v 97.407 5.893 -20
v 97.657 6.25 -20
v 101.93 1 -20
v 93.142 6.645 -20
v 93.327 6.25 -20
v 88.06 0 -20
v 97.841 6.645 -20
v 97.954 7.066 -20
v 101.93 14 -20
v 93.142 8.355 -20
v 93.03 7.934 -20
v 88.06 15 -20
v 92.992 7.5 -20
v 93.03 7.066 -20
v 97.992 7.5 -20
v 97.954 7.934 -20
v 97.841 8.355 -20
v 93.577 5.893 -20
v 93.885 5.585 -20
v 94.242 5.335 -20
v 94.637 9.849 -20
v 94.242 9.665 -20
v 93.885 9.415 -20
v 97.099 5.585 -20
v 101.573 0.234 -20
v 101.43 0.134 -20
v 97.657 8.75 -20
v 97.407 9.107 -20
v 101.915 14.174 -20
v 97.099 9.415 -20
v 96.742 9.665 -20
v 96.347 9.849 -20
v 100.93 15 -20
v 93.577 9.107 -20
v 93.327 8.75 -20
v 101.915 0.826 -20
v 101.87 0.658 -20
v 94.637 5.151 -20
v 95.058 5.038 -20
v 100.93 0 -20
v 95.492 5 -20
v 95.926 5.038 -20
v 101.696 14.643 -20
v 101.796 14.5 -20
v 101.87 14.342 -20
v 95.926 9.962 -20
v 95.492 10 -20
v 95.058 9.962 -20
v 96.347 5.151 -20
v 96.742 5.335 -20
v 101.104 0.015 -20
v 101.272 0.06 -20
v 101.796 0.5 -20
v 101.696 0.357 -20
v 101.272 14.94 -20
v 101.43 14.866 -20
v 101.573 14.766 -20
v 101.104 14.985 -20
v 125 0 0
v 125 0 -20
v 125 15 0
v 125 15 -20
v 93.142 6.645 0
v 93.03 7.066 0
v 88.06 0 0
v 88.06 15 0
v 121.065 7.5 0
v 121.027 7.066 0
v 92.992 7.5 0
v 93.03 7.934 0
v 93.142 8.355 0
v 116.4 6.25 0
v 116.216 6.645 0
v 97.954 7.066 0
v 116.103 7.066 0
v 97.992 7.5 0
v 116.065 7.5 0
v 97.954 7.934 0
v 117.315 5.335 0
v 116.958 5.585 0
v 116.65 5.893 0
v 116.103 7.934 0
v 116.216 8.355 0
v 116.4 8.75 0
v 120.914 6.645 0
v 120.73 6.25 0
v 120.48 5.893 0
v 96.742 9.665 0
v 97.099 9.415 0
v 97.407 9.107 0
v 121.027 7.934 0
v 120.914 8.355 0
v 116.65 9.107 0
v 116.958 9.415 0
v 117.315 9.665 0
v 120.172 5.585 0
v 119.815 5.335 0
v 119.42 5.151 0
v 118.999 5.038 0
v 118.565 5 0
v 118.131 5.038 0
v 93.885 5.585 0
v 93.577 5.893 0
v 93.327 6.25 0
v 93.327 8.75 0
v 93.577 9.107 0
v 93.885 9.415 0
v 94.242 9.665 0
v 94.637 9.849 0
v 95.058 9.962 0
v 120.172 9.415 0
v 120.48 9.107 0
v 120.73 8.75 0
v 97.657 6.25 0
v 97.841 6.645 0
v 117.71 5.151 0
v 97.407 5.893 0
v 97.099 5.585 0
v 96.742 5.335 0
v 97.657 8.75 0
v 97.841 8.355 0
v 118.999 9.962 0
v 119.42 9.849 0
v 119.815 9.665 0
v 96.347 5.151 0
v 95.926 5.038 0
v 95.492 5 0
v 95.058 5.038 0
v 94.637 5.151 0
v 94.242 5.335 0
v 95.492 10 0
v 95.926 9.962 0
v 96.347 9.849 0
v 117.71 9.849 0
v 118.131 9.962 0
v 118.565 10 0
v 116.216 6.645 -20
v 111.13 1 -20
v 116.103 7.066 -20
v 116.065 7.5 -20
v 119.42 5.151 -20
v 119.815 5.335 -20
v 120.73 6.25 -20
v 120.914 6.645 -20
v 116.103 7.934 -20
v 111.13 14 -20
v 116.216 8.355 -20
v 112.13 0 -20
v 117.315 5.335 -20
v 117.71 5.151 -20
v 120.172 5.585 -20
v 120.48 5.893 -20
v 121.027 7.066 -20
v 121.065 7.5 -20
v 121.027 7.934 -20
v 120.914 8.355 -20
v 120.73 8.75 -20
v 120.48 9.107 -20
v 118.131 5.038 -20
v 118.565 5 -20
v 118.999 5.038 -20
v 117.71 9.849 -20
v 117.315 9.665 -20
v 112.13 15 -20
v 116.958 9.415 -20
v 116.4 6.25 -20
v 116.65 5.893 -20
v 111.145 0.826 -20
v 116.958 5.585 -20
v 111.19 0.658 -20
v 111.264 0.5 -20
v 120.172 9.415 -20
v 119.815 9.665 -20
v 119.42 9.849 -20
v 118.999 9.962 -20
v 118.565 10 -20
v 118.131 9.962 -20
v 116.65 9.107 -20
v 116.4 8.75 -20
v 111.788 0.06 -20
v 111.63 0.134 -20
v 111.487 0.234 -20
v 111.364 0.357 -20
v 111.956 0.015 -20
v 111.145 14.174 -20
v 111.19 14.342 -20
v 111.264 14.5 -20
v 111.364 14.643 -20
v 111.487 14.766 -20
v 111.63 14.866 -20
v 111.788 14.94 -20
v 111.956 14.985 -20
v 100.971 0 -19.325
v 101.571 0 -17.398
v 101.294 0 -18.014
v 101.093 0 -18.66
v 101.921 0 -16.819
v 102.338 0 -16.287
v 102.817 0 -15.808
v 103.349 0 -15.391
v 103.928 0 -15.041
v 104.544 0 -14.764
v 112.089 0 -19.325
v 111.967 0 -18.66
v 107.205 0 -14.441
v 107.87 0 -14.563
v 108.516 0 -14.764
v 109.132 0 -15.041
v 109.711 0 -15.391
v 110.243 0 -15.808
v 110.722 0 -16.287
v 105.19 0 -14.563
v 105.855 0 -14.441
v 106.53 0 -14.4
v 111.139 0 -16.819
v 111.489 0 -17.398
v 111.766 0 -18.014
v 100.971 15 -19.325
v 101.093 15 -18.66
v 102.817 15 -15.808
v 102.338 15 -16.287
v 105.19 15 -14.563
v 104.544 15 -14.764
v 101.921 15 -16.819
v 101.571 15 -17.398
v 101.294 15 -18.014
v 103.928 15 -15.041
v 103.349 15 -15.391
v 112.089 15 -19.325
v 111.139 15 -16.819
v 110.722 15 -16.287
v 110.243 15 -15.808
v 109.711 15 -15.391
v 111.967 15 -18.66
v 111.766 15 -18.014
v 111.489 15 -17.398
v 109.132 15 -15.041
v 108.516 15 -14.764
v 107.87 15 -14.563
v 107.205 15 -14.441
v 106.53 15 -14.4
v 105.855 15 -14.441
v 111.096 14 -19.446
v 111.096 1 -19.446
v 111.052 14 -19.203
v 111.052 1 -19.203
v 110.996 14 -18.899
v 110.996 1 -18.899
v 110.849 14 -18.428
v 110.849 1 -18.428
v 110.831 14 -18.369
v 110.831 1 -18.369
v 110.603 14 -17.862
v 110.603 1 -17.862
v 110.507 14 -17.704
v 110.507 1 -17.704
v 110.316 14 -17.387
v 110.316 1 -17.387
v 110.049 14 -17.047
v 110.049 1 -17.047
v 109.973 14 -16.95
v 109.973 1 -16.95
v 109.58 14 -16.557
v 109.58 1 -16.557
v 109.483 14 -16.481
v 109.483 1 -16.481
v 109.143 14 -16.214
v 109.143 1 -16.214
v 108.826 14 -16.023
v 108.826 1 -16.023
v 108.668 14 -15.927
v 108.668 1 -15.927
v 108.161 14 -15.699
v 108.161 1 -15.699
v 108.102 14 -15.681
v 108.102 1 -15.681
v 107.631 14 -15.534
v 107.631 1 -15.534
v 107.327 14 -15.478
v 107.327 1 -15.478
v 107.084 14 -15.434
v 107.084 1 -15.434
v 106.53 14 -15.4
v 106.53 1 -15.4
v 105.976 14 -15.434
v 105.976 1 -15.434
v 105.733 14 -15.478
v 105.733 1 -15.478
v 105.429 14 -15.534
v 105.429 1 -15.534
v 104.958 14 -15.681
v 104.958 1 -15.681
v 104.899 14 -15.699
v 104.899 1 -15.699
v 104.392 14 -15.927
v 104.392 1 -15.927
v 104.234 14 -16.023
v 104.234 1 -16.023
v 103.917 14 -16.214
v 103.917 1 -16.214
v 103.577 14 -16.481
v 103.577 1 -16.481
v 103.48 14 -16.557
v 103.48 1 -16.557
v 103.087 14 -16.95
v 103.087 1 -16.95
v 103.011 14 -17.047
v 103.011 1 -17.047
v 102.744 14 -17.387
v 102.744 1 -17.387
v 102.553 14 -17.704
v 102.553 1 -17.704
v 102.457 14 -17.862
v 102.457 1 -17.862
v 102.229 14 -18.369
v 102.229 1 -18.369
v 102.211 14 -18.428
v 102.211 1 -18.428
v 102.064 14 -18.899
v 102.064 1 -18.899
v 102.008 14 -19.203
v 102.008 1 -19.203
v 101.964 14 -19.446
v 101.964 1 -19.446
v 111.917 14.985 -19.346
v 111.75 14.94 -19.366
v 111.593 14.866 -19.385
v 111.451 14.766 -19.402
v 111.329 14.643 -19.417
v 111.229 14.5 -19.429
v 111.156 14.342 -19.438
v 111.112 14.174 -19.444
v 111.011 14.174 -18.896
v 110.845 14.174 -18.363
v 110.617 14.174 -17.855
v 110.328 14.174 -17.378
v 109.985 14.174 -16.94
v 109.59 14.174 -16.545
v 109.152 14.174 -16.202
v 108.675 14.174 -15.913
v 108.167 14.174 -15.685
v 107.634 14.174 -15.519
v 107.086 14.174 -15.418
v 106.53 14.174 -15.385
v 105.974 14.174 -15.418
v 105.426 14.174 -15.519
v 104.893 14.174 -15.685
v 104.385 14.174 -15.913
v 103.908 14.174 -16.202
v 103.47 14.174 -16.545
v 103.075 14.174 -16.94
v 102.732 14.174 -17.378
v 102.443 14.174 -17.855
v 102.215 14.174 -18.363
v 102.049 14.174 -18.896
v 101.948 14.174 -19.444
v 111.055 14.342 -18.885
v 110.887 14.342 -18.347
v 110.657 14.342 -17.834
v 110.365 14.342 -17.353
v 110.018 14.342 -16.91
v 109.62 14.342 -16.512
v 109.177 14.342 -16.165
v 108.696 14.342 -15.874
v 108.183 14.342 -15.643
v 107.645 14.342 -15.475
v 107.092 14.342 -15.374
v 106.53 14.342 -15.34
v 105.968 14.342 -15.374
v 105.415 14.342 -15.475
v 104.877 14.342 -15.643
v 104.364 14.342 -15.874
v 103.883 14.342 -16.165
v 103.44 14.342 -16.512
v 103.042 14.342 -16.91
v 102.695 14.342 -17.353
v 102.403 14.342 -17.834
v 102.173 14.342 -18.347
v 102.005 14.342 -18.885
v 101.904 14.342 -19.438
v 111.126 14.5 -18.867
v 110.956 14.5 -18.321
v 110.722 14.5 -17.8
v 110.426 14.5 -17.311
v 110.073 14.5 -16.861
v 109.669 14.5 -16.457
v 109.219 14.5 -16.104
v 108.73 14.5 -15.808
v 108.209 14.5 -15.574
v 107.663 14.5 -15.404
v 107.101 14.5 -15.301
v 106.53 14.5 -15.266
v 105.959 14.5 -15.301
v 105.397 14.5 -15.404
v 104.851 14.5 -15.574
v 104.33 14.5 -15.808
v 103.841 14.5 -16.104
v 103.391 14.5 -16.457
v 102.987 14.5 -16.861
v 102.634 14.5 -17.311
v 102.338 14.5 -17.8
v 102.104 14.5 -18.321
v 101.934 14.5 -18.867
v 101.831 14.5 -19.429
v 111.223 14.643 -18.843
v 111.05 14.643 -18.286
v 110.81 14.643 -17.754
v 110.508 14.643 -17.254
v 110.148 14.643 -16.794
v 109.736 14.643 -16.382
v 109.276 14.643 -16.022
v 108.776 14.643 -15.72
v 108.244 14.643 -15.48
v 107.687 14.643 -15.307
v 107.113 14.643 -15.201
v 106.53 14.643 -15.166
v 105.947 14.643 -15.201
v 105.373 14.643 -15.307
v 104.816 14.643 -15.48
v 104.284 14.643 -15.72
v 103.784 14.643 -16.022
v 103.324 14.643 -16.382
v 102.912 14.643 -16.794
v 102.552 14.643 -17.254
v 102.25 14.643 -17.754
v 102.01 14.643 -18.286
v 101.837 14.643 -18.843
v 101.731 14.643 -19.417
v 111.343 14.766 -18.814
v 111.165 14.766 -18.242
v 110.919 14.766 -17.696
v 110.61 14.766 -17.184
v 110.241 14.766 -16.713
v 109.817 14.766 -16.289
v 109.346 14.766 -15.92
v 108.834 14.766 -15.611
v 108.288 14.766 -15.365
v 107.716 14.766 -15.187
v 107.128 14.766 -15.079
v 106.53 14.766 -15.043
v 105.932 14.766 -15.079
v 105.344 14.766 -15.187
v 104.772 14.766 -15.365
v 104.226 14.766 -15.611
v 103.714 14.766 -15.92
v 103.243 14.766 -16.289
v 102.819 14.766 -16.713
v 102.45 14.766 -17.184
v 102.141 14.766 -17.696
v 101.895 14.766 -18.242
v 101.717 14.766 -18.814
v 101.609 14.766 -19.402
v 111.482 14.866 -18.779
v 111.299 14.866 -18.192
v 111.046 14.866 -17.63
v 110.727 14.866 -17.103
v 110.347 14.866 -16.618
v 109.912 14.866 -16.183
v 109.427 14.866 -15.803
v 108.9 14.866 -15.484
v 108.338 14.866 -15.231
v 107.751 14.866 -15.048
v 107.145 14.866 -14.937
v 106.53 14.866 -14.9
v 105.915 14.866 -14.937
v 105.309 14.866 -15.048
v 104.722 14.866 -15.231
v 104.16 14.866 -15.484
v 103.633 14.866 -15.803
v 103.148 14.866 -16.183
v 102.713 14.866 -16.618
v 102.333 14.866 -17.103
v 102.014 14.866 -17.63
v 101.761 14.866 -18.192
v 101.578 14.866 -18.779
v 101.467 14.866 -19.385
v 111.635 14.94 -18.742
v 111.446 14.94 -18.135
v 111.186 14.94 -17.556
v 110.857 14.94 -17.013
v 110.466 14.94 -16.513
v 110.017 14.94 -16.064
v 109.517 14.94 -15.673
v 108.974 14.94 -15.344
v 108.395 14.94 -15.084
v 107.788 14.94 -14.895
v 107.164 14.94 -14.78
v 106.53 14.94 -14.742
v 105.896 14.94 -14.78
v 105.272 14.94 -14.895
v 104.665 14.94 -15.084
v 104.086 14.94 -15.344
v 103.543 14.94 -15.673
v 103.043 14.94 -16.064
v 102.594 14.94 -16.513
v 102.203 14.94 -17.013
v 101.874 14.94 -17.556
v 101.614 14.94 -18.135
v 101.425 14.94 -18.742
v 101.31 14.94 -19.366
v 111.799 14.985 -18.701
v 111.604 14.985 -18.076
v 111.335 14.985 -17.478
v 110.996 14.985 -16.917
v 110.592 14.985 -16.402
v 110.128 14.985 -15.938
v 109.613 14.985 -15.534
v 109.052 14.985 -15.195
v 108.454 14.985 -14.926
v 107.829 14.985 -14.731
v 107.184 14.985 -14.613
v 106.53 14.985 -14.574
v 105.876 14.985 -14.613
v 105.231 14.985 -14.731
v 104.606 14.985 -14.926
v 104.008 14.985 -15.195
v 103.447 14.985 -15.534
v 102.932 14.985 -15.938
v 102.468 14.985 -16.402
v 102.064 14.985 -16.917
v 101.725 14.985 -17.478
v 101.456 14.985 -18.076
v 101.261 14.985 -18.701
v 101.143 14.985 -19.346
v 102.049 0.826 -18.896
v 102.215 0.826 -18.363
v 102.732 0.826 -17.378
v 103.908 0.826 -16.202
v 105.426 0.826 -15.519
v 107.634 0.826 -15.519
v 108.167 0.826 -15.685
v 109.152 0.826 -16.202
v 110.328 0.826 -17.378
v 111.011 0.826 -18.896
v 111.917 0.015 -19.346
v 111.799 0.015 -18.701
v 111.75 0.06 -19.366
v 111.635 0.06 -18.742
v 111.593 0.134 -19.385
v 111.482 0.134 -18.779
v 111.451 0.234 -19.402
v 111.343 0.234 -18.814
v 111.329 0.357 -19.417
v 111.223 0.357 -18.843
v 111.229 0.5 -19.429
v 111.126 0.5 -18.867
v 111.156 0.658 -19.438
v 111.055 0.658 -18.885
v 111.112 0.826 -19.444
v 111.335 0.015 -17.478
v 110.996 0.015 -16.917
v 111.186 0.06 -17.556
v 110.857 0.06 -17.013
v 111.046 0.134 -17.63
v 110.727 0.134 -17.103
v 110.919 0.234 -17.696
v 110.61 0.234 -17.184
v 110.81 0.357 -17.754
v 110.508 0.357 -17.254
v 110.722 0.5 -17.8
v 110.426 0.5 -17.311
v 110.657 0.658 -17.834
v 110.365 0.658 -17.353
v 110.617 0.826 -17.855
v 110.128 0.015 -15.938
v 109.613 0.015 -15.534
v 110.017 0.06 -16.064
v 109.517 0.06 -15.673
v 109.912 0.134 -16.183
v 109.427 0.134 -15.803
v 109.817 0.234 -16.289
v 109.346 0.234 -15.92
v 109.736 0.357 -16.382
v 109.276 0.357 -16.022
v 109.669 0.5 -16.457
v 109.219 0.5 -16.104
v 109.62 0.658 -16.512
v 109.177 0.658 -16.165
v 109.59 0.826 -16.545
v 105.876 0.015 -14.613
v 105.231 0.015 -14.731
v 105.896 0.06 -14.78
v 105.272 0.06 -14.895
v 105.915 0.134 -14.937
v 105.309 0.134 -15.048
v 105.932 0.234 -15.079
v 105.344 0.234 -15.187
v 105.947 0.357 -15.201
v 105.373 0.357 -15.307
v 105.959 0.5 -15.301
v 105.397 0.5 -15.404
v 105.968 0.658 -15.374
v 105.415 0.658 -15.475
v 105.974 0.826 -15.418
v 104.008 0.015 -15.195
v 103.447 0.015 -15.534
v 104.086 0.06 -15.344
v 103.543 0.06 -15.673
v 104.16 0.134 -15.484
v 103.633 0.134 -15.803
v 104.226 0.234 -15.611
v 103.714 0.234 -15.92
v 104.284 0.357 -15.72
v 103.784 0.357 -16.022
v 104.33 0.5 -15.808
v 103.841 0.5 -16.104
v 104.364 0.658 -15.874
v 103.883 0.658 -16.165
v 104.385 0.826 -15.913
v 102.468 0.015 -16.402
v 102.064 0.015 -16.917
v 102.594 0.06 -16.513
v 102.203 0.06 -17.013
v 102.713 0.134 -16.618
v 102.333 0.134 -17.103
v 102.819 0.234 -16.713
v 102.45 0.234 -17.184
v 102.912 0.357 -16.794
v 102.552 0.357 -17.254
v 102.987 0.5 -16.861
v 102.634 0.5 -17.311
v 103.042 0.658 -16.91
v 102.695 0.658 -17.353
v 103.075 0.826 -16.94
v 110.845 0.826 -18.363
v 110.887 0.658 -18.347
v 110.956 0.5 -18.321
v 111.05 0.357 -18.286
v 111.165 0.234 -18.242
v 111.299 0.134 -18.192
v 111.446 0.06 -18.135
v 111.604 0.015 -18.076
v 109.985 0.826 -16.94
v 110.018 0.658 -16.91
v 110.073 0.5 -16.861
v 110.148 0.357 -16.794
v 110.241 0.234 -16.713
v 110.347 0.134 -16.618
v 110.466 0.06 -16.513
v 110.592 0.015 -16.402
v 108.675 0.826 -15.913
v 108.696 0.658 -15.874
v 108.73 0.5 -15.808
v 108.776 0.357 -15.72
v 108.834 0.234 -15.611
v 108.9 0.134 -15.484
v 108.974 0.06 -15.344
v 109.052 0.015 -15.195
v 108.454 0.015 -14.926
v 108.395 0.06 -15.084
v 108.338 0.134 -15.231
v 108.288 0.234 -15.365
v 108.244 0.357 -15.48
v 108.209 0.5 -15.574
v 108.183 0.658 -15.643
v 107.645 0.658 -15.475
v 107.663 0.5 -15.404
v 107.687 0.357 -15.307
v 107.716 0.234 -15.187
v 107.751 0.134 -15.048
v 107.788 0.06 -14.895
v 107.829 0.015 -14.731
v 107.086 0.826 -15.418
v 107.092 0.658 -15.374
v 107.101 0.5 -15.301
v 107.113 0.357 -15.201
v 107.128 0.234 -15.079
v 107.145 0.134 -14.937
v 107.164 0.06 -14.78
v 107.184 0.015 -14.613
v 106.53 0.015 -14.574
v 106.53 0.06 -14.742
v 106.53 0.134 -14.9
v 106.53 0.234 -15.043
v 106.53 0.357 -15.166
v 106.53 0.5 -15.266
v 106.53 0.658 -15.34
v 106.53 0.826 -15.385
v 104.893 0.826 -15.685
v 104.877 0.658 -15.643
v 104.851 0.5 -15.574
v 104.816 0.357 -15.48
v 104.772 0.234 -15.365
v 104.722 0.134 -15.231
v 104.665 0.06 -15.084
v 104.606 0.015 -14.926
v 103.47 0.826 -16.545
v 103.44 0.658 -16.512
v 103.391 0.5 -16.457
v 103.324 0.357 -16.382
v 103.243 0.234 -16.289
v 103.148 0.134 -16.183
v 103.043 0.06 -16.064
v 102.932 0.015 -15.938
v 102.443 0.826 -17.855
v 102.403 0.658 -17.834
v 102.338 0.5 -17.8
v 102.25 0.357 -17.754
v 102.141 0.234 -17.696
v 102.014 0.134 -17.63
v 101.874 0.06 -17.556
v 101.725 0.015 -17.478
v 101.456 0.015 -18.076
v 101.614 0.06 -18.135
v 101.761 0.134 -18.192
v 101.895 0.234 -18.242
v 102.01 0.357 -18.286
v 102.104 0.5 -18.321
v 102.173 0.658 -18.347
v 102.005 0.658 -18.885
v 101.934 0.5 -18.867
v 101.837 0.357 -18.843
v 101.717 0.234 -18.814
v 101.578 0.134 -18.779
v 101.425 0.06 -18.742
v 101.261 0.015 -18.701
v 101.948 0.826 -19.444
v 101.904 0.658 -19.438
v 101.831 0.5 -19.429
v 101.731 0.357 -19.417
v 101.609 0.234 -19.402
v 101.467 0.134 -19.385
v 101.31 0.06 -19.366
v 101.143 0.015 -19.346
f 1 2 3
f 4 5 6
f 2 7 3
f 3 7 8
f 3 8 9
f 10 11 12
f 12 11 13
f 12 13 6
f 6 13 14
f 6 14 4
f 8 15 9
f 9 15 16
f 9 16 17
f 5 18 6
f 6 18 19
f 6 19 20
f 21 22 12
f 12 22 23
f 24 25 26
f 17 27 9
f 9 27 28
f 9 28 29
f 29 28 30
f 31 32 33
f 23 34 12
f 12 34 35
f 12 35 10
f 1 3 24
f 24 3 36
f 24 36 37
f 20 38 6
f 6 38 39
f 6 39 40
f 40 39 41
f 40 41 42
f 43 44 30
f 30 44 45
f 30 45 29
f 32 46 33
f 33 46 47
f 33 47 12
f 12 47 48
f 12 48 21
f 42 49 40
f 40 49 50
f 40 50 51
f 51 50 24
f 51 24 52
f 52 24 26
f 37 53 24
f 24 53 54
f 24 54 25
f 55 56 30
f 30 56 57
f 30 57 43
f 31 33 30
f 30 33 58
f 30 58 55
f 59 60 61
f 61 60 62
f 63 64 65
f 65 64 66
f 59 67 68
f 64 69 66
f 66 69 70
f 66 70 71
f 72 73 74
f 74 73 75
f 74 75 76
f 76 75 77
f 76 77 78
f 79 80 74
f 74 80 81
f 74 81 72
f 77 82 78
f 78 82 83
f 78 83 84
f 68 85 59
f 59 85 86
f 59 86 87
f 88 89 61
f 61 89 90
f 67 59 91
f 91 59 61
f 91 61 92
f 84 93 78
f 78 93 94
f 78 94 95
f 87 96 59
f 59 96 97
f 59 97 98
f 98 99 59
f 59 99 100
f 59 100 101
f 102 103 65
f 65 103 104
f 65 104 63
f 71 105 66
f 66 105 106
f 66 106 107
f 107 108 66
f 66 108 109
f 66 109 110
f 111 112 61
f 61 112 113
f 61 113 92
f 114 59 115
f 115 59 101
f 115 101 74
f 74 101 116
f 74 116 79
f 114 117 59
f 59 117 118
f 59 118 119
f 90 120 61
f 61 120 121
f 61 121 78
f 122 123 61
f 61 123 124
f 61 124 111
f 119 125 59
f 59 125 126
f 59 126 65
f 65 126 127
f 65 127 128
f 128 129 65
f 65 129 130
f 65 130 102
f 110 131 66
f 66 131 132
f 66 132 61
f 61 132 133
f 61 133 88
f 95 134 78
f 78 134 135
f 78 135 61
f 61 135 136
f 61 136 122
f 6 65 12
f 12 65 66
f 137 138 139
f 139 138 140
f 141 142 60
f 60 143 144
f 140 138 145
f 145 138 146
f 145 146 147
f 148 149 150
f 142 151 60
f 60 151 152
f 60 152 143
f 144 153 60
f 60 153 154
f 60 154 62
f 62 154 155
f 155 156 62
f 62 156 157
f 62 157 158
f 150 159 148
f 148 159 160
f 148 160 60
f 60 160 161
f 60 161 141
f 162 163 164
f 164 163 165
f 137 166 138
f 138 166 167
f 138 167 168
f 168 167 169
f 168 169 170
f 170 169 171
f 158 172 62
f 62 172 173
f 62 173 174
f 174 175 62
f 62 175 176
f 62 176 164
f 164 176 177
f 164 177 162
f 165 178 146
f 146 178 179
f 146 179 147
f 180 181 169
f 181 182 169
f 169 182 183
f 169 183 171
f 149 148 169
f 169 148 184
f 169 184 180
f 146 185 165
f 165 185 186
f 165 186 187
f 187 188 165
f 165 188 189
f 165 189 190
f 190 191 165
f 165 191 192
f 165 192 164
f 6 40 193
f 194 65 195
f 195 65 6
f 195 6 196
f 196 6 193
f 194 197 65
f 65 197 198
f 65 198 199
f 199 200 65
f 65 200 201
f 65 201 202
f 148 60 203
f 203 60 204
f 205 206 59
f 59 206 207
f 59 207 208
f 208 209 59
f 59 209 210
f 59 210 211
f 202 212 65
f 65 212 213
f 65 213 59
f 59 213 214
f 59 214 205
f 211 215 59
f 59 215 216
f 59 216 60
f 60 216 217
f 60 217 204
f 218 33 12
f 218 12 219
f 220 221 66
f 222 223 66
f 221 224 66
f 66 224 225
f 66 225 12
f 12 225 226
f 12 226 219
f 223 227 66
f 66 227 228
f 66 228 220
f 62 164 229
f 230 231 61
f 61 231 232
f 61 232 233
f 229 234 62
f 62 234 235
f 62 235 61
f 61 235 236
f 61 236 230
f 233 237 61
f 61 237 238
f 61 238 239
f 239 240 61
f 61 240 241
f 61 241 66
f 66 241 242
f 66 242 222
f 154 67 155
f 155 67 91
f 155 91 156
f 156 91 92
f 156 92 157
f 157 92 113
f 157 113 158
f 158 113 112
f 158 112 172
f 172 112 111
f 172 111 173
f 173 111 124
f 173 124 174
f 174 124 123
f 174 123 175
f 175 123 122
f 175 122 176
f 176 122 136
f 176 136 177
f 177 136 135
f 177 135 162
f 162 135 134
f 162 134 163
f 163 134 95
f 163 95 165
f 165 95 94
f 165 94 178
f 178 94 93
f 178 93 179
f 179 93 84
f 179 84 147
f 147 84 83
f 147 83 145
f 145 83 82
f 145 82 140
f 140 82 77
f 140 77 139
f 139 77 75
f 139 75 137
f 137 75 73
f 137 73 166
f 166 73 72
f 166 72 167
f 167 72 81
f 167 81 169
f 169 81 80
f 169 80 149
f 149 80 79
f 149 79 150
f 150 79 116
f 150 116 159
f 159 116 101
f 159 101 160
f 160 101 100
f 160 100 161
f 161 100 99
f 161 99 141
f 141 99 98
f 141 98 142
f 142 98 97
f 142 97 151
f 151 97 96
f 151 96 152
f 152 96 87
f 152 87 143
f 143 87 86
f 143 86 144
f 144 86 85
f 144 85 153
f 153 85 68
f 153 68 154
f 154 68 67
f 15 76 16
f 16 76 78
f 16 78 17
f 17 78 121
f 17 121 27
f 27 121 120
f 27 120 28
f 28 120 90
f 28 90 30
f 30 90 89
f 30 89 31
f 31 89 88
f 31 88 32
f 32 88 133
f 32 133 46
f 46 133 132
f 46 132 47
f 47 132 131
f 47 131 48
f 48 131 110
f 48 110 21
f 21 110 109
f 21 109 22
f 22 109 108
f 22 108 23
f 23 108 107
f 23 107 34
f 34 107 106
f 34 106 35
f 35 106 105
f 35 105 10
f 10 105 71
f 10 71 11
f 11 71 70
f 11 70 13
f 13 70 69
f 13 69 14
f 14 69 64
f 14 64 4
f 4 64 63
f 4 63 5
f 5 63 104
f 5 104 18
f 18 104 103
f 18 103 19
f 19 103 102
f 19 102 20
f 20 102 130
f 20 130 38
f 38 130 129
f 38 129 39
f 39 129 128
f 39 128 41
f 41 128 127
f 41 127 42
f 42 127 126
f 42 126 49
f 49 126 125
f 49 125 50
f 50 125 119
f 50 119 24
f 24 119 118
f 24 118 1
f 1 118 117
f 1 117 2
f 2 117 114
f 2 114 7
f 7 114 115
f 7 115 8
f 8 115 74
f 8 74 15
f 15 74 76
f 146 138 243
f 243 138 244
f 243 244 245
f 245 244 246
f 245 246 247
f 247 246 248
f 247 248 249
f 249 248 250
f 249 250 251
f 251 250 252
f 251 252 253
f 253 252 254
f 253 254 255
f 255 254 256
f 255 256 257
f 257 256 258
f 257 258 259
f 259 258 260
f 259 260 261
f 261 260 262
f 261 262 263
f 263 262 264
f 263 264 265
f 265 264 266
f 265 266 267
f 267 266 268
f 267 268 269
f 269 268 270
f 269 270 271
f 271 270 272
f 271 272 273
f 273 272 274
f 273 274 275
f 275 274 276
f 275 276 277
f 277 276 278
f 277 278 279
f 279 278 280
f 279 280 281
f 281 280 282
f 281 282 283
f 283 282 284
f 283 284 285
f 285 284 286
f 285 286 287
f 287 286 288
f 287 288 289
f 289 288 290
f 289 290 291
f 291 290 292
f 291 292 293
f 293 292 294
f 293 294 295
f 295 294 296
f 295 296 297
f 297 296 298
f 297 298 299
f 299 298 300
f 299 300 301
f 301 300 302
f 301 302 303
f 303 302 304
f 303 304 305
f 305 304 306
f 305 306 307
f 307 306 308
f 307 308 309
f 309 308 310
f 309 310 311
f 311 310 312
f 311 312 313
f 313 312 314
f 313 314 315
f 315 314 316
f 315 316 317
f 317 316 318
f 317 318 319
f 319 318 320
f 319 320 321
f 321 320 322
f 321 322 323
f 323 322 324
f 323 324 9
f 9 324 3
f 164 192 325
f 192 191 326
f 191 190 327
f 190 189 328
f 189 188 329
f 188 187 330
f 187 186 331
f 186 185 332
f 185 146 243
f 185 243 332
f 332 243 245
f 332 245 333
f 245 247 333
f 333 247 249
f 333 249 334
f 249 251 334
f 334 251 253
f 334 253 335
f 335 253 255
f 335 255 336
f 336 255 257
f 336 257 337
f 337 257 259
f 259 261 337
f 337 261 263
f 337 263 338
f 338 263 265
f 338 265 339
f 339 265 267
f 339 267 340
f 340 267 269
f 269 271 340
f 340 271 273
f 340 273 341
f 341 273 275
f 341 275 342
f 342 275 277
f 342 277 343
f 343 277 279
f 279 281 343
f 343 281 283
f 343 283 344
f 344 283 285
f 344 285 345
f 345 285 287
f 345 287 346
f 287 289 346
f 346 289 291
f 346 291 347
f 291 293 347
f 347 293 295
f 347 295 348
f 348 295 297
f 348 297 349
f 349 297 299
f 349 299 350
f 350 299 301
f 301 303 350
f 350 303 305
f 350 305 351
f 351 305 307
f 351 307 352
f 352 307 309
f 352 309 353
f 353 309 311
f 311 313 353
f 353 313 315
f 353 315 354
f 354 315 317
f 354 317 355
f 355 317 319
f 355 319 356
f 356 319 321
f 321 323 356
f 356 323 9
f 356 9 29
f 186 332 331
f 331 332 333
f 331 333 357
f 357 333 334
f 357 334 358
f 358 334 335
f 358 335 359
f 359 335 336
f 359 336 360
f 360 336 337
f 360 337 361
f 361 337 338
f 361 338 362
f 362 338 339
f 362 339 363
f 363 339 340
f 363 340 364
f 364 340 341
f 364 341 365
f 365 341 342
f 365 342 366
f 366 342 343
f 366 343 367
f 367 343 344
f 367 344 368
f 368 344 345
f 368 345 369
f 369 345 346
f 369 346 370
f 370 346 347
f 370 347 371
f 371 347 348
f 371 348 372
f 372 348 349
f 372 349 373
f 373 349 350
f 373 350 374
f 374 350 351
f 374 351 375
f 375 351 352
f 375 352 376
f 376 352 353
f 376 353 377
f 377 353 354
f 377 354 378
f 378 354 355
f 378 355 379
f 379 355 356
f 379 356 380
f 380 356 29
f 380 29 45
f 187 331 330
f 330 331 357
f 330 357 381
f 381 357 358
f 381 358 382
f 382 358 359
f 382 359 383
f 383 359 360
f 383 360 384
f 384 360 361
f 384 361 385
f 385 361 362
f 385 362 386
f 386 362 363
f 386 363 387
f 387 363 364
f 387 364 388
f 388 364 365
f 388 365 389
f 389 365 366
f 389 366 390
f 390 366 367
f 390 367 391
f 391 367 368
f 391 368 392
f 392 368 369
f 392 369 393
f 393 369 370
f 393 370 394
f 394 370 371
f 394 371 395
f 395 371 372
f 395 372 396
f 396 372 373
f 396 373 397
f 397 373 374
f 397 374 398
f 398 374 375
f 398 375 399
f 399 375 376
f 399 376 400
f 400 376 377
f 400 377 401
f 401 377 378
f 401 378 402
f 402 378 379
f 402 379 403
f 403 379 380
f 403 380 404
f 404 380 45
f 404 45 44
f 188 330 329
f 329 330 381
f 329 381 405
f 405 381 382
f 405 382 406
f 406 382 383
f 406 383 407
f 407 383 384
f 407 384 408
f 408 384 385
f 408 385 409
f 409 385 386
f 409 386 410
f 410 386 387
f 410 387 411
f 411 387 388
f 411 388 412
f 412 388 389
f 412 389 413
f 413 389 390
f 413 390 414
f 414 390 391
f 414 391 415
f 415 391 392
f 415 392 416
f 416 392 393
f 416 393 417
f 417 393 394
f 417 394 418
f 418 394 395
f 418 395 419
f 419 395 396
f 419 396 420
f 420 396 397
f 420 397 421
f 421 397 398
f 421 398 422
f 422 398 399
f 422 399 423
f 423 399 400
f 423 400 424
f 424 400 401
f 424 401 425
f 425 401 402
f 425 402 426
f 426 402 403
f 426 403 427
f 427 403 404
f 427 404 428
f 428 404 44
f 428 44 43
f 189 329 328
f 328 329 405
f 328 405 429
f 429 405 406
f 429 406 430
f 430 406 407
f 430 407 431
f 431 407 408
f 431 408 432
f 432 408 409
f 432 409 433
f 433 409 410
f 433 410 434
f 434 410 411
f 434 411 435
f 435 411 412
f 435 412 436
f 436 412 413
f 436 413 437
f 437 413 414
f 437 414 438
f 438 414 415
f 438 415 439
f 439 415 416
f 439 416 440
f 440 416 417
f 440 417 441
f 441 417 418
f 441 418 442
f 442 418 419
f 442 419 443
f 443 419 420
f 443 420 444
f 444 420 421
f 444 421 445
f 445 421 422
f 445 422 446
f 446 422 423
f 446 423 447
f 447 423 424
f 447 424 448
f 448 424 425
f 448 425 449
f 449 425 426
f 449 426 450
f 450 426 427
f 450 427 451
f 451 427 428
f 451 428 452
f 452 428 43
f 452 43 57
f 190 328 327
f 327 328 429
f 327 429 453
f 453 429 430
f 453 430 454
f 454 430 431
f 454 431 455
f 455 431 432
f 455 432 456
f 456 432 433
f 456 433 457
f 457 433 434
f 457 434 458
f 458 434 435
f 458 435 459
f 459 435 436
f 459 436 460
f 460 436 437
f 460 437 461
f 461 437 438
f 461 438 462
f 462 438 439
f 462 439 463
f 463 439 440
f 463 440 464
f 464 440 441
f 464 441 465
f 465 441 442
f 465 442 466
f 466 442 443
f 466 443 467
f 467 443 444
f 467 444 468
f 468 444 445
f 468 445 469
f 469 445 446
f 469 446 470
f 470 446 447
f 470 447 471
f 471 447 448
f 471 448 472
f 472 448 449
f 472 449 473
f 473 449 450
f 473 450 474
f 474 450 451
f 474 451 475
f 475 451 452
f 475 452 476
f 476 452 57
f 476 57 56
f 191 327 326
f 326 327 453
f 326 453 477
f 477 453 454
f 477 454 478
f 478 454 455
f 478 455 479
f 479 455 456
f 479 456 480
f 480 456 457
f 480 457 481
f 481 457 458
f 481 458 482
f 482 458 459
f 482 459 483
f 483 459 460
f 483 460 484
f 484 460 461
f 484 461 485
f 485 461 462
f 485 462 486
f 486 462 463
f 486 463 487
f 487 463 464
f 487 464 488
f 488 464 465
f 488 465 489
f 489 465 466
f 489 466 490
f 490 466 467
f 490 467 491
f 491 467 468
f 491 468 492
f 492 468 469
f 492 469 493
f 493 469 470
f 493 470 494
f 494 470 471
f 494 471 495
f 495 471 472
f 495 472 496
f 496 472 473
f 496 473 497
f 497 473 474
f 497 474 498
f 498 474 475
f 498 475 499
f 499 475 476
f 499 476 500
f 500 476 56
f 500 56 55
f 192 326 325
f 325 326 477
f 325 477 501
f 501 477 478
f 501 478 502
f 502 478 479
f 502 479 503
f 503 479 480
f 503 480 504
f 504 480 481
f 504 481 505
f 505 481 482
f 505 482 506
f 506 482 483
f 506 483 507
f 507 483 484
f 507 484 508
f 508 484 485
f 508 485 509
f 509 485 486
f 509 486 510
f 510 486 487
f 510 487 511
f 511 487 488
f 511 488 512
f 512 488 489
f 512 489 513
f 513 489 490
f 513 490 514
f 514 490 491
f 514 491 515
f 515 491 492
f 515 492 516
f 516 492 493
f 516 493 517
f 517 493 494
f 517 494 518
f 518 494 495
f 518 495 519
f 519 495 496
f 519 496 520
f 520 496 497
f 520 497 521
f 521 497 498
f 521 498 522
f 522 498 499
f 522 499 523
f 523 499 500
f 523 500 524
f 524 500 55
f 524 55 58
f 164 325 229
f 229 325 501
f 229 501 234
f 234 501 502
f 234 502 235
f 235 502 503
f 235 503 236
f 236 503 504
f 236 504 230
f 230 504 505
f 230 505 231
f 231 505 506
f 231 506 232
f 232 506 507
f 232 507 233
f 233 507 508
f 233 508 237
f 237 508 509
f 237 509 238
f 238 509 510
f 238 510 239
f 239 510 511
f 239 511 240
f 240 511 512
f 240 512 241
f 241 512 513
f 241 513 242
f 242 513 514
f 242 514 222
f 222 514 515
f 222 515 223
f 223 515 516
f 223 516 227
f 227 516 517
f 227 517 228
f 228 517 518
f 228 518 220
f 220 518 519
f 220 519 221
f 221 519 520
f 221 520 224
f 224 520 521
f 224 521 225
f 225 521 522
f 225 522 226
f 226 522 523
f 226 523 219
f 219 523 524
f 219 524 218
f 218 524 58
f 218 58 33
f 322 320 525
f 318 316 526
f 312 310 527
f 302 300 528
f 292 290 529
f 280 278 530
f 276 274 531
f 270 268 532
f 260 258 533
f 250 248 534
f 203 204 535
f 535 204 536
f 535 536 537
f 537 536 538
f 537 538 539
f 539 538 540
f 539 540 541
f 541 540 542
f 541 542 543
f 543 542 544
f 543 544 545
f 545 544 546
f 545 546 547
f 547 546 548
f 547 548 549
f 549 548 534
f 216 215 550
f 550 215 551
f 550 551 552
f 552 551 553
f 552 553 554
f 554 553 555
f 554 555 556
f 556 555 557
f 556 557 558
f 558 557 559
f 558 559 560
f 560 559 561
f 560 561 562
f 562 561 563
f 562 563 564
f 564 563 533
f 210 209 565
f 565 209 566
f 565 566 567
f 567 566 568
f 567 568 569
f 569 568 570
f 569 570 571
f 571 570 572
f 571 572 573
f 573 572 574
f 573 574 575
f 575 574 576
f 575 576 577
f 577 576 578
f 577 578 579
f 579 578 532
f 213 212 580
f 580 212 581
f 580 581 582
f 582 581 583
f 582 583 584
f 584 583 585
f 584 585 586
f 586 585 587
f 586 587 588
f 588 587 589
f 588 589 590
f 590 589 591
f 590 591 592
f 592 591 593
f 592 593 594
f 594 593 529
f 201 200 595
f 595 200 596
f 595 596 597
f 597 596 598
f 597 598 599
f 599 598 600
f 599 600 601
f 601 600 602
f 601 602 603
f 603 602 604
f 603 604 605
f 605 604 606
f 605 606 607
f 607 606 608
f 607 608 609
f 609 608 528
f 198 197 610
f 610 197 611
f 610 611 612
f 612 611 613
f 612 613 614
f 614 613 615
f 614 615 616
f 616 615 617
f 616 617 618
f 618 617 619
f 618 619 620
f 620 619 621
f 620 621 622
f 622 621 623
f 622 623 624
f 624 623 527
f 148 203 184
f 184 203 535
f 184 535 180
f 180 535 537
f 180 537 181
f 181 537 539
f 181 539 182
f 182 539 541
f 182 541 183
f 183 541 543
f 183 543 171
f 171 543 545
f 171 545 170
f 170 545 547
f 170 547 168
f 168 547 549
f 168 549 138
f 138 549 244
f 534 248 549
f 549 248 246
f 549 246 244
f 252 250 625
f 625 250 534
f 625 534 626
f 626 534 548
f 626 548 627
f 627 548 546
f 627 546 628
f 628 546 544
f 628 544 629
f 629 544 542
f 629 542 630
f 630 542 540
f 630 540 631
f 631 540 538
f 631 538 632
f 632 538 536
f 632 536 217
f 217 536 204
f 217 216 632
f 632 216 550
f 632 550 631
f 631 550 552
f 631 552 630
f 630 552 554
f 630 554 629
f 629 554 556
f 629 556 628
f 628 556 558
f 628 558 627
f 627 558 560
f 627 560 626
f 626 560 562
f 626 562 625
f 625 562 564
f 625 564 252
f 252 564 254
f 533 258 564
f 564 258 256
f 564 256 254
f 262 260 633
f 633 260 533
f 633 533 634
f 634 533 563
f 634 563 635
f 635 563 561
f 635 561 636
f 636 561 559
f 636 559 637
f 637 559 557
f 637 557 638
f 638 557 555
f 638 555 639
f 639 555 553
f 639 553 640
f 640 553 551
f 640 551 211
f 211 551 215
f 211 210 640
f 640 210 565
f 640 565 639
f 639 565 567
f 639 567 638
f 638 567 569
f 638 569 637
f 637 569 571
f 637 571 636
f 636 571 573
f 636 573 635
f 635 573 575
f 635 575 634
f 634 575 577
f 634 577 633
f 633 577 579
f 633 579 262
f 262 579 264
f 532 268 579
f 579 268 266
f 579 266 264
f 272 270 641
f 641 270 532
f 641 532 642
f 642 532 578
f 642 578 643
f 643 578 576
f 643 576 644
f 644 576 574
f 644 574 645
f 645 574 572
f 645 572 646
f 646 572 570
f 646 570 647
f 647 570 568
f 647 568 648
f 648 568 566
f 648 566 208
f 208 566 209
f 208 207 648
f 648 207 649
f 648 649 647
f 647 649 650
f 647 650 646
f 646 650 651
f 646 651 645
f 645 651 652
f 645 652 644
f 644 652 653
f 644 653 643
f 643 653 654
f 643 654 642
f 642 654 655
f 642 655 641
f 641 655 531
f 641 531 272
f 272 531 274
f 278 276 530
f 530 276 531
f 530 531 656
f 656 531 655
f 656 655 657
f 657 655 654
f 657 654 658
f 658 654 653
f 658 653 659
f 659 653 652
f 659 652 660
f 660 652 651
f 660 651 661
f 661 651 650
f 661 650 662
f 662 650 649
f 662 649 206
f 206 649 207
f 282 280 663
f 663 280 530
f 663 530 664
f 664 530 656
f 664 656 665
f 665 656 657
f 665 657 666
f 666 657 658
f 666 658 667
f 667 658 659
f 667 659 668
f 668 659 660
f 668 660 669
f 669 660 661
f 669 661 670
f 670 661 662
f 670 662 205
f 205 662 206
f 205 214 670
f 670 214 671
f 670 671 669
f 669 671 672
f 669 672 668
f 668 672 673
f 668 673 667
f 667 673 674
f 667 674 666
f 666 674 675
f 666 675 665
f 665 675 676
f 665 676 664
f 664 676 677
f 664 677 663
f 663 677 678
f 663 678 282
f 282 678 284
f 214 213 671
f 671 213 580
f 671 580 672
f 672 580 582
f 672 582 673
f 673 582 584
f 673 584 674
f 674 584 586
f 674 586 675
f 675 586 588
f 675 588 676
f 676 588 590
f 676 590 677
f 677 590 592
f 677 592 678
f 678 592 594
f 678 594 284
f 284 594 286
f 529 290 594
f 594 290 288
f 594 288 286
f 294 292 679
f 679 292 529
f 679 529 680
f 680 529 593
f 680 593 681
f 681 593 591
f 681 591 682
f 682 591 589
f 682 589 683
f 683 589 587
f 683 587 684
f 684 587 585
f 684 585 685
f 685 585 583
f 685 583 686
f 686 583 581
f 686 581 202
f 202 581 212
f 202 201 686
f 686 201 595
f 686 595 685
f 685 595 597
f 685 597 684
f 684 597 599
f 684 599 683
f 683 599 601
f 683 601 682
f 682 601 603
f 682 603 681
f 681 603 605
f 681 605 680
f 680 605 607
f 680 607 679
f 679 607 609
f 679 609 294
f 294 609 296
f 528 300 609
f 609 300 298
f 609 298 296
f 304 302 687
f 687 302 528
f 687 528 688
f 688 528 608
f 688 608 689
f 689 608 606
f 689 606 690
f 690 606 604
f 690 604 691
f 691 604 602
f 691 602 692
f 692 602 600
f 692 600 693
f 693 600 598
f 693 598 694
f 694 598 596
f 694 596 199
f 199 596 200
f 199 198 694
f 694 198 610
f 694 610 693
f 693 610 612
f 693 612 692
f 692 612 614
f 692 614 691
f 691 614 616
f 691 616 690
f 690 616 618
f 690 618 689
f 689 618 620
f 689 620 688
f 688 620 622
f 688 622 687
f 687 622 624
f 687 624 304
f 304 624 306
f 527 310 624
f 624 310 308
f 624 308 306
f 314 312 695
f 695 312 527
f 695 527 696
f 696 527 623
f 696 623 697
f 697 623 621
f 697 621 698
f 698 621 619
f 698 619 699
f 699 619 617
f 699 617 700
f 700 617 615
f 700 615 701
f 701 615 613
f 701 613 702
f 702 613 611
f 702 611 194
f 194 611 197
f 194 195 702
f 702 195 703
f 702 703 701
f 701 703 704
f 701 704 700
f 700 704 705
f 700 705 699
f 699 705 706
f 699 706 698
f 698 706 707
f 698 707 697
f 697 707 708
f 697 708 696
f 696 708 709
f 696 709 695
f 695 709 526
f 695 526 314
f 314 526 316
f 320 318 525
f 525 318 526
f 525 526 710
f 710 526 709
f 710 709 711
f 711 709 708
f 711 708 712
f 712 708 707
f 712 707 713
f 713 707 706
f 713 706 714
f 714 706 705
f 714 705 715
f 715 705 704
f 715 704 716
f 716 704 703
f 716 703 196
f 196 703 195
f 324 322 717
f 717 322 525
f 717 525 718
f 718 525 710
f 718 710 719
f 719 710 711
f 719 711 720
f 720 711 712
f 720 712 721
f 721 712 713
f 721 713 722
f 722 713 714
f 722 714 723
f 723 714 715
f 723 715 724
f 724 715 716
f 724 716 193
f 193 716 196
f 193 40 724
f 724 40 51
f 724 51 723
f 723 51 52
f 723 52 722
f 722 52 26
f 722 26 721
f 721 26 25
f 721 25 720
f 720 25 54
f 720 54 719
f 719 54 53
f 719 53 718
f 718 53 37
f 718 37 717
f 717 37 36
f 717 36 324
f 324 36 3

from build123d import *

# Parameters (mm, degrees)
SKETCH_1_W          = 125
SKETCH_1_H          = 40
EXTRUDE_1_DEPTH     = 15
SKETCH_2_R          = 8.9
SKETCH_2_R_2        = 4.6
SKETCH_2_R_3        = 13.3
CUT_EXTRUDE_1_DEPTH = 133.098448136
CHAMFER_1_SIZE      = 1
CHAMFER_2_SIZE      = 1
FILLET_1_R          = 1
SKETCH_5_W          = 40
SKETCH_5_H          = 20
CUT_EXTRUDE_2_DEPTH = 133.098448148
FILLET_4_R          = 5
SKETCH_12_W         = 3.06
SKETCH_12_H         = 20
EXTRUDE_2_DEPTH     = 15
SKETCH_14_R         = 2.5
CUT_EXTRUDE_3_DEPTH = 128.47548784
SKETCH_15_W         = 36.94
SKETCH_15_H         = 20
EXTRUDE_3_DEPTH     = 15
SKETCH_16_W         = 106.425382254
SKETCH_16_H         = 56.336912026
CUT_EXTRUDE_4_DEPTH = 133.098448148
SKETCH_17_R         = 2.5
CUT_EXTRUDE_5_DEPTH = 133.098448136
SKETCH_18_R         = 4.6
CUT_EXTRUDE_6_DEPTH = 133.098448136
FILLET_5_R          = 1
SKETCH_19_W         = 47.376769249
SKETCH_19_H         = 22.00625663
CUT_EXTRUDE_7_DEPTH = 133.098448148
FILLET_6_R          = 1


with BuildPart() as part:
    # 草圖1 → 填料-伸長1 (new body)
    with BuildSketch(Plane(origin=(0, 0, 0), x_dir=(1, 0, 0), z_dir=(0, 1, 0))):
        with Locations((62.5, 20)):
            Rectangle(SKETCH_1_W, SKETCH_1_H)
    extrude(amount=EXTRUDE_1_DEPTH)

    # 草圖2 → 除料-伸長1 (cut, through all)
    with BuildSketch(Plane(origin=(0, 15, 0), x_dir=(1, 0, 0), z_dir=(0, 1, 0))):
        with Locations(Location((18.526668527, 20, 0), (0, 0, 270))):
            Circle(SKETCH_2_R)
        with Locations(Location((106.526668527, 20, 0), (0, 0, 270))):
            Circle(SKETCH_2_R_2)
        with Locations(Location((62.526668527, 20, 0), (0, 0, 270))):
            Circle(SKETCH_2_R_3)
    extrude(amount=-CUT_EXTRUDE_1_DEPTH, mode=Mode.SUBTRACT)

    # 導角1
    chamfer_1_edges = [part.edges().sort_by_distance(p)[0] for p in [
        (18.526668527, 15, -28.9),
    ]]
    chamfer(chamfer_1_edges, length=CHAMFER_1_SIZE)

    # 導角2
    chamfer_2_edges = [part.edges().sort_by_distance(p)[0] for p in [
        (18.526668527, 0, -28.9),
    ]]
    chamfer(chamfer_2_edges, length=CHAMFER_2_SIZE)

    # 圓角1
    fillet_1_edges = [part.edges().sort_by_distance(p)[0] for p in [
        (106.526668527, 0, -24.6),
        (106.526668527, 15, -24.6),
        (62.526668527, 0, -33.3),
        (62.526668527, 15, -33.3),
    ]]
    fillet(fillet_1_edges, radius=FILLET_1_R)

    # 草圖5 → 除料-伸長2 (cut, through all)
    with BuildSketch(Plane(origin=(0, 15, 0), x_dir=(1, 0, 0), z_dir=(0, 1, 0))):
        with Locations((105, 10)):
            Rectangle(SKETCH_5_W, SKETCH_5_H)
    extrude(amount=-CUT_EXTRUDE_2_DEPTH, mode=Mode.SUBTRACT)

    # 圓角4
    fillet_4_edges = [part.edges().sort_by_distance(p)[0] for p in [
        (0, 7.5, -40),
        (0, 7.5, 0),
    ]]
    fillet(fillet_4_edges, radius=FILLET_4_R)

    # 草圖12 → 填料-伸長2 (add)
    with BuildSketch(Plane(origin=(0, 15, 0), x_dir=(1, 0, 0), z_dir=(0, 1, 0))):
        with Locations((86.53, 10)):
            Rectangle(SKETCH_12_W, SKETCH_12_H)
    extrude(amount=-EXTRUDE_2_DEPTH)

    # 草圖14 → 除料-伸長3 (cut, through all)
    with BuildSketch(Plane.XY.offset(-20)):
        with Locations((118.565, 7.5)):
            Circle(SKETCH_14_R)
        with Locations((95.491668527, 7.5)):
            Circle(SKETCH_14_R)
    extrude(amount=-CUT_EXTRUDE_3_DEPTH, mode=Mode.SUBTRACT)

    # 草圖16 → 除料-伸長4 (cut, through all)
    with BuildSketch(Plane(origin=(0, 15, 0), x_dir=(1, 0, 0), z_dir=(0, 1, 0))):
        with Locations((34.847308873, 28.168456013)):
            Rectangle(SKETCH_16_W, SKETCH_16_H)
    extrude(amount=-CUT_EXTRUDE_4_DEPTH, mode=Mode.SUBTRACT)


with BuildPart() as body_2:
    # 草圖15 → 填料-伸長3 (new body)
    with BuildSketch(Plane(origin=(0, 15, 0), x_dir=(1, 0, 0), z_dir=(0, 1, 0))):
        with Locations((106.53, 10)):
            Rectangle(SKETCH_15_W, SKETCH_15_H)
    extrude(amount=-EXTRUDE_3_DEPTH)

    # 草圖17 → 除料-伸長5 (cut, through all)
    with BuildSketch(Plane.XY):
        with Locations((95.491668527, 7.5)):
            Circle(SKETCH_17_R)
        with Locations((118.565, 7.5)):
            Circle(SKETCH_17_R)
    extrude(amount=-CUT_EXTRUDE_5_DEPTH, mode=Mode.SUBTRACT)


with BuildPart() as cut_extrude_6_tool:
    # 草圖18 → 除料-伸長6 (new, through all)
    with BuildSketch(Plane(origin=(0, 15, 0), x_dir=(1, 0, 0), z_dir=(0, 1, 0))):
        with Locations((106.53, 20)):
            Circle(SKETCH_18_R)
    extrude(amount=-CUT_EXTRUDE_6_DEPTH)


with BuildPart() as part_1:
    add(part.part)

    # 除料-伸長6: cut by cut_extrude_6_tool
    add(cut_extrude_6_tool.part, mode=Mode.SUBTRACT)

    # 草圖19 → 除料-伸長7 (cut, through all)
    with BuildSketch(Plane(origin=(0, 15, 0), x_dir=(1, 0, 0), z_dir=(0, 1, 0))):
        with Locations((111.748384625, 31.003128315)):
            Rectangle(SKETCH_19_W, SKETCH_19_H)
    extrude(amount=-CUT_EXTRUDE_7_DEPTH, mode=Mode.SUBTRACT)


with BuildPart() as body_2_1:
    add(body_2.part)

    # 除料-伸長6: cut by cut_extrude_6_tool
    add(cut_extrude_6_tool.part, mode=Mode.SUBTRACT)

    # 圓角5
    fillet_5_edges = [body_2_1.edges().sort_by_distance(p)[0] for p in [
        (106.53, 15, -15.4),
    ]]
    fillet(fillet_5_edges, radius=FILLET_5_R)

    # 圓角6
    fillet_6_edges = [body_2_1.edges().sort_by_distance(p)[0] for p in [
        (106.53, 0, -15.4),
    ]]
    fillet(fillet_6_edges, radius=FILLET_6_R)


solid = body_2_1.part
